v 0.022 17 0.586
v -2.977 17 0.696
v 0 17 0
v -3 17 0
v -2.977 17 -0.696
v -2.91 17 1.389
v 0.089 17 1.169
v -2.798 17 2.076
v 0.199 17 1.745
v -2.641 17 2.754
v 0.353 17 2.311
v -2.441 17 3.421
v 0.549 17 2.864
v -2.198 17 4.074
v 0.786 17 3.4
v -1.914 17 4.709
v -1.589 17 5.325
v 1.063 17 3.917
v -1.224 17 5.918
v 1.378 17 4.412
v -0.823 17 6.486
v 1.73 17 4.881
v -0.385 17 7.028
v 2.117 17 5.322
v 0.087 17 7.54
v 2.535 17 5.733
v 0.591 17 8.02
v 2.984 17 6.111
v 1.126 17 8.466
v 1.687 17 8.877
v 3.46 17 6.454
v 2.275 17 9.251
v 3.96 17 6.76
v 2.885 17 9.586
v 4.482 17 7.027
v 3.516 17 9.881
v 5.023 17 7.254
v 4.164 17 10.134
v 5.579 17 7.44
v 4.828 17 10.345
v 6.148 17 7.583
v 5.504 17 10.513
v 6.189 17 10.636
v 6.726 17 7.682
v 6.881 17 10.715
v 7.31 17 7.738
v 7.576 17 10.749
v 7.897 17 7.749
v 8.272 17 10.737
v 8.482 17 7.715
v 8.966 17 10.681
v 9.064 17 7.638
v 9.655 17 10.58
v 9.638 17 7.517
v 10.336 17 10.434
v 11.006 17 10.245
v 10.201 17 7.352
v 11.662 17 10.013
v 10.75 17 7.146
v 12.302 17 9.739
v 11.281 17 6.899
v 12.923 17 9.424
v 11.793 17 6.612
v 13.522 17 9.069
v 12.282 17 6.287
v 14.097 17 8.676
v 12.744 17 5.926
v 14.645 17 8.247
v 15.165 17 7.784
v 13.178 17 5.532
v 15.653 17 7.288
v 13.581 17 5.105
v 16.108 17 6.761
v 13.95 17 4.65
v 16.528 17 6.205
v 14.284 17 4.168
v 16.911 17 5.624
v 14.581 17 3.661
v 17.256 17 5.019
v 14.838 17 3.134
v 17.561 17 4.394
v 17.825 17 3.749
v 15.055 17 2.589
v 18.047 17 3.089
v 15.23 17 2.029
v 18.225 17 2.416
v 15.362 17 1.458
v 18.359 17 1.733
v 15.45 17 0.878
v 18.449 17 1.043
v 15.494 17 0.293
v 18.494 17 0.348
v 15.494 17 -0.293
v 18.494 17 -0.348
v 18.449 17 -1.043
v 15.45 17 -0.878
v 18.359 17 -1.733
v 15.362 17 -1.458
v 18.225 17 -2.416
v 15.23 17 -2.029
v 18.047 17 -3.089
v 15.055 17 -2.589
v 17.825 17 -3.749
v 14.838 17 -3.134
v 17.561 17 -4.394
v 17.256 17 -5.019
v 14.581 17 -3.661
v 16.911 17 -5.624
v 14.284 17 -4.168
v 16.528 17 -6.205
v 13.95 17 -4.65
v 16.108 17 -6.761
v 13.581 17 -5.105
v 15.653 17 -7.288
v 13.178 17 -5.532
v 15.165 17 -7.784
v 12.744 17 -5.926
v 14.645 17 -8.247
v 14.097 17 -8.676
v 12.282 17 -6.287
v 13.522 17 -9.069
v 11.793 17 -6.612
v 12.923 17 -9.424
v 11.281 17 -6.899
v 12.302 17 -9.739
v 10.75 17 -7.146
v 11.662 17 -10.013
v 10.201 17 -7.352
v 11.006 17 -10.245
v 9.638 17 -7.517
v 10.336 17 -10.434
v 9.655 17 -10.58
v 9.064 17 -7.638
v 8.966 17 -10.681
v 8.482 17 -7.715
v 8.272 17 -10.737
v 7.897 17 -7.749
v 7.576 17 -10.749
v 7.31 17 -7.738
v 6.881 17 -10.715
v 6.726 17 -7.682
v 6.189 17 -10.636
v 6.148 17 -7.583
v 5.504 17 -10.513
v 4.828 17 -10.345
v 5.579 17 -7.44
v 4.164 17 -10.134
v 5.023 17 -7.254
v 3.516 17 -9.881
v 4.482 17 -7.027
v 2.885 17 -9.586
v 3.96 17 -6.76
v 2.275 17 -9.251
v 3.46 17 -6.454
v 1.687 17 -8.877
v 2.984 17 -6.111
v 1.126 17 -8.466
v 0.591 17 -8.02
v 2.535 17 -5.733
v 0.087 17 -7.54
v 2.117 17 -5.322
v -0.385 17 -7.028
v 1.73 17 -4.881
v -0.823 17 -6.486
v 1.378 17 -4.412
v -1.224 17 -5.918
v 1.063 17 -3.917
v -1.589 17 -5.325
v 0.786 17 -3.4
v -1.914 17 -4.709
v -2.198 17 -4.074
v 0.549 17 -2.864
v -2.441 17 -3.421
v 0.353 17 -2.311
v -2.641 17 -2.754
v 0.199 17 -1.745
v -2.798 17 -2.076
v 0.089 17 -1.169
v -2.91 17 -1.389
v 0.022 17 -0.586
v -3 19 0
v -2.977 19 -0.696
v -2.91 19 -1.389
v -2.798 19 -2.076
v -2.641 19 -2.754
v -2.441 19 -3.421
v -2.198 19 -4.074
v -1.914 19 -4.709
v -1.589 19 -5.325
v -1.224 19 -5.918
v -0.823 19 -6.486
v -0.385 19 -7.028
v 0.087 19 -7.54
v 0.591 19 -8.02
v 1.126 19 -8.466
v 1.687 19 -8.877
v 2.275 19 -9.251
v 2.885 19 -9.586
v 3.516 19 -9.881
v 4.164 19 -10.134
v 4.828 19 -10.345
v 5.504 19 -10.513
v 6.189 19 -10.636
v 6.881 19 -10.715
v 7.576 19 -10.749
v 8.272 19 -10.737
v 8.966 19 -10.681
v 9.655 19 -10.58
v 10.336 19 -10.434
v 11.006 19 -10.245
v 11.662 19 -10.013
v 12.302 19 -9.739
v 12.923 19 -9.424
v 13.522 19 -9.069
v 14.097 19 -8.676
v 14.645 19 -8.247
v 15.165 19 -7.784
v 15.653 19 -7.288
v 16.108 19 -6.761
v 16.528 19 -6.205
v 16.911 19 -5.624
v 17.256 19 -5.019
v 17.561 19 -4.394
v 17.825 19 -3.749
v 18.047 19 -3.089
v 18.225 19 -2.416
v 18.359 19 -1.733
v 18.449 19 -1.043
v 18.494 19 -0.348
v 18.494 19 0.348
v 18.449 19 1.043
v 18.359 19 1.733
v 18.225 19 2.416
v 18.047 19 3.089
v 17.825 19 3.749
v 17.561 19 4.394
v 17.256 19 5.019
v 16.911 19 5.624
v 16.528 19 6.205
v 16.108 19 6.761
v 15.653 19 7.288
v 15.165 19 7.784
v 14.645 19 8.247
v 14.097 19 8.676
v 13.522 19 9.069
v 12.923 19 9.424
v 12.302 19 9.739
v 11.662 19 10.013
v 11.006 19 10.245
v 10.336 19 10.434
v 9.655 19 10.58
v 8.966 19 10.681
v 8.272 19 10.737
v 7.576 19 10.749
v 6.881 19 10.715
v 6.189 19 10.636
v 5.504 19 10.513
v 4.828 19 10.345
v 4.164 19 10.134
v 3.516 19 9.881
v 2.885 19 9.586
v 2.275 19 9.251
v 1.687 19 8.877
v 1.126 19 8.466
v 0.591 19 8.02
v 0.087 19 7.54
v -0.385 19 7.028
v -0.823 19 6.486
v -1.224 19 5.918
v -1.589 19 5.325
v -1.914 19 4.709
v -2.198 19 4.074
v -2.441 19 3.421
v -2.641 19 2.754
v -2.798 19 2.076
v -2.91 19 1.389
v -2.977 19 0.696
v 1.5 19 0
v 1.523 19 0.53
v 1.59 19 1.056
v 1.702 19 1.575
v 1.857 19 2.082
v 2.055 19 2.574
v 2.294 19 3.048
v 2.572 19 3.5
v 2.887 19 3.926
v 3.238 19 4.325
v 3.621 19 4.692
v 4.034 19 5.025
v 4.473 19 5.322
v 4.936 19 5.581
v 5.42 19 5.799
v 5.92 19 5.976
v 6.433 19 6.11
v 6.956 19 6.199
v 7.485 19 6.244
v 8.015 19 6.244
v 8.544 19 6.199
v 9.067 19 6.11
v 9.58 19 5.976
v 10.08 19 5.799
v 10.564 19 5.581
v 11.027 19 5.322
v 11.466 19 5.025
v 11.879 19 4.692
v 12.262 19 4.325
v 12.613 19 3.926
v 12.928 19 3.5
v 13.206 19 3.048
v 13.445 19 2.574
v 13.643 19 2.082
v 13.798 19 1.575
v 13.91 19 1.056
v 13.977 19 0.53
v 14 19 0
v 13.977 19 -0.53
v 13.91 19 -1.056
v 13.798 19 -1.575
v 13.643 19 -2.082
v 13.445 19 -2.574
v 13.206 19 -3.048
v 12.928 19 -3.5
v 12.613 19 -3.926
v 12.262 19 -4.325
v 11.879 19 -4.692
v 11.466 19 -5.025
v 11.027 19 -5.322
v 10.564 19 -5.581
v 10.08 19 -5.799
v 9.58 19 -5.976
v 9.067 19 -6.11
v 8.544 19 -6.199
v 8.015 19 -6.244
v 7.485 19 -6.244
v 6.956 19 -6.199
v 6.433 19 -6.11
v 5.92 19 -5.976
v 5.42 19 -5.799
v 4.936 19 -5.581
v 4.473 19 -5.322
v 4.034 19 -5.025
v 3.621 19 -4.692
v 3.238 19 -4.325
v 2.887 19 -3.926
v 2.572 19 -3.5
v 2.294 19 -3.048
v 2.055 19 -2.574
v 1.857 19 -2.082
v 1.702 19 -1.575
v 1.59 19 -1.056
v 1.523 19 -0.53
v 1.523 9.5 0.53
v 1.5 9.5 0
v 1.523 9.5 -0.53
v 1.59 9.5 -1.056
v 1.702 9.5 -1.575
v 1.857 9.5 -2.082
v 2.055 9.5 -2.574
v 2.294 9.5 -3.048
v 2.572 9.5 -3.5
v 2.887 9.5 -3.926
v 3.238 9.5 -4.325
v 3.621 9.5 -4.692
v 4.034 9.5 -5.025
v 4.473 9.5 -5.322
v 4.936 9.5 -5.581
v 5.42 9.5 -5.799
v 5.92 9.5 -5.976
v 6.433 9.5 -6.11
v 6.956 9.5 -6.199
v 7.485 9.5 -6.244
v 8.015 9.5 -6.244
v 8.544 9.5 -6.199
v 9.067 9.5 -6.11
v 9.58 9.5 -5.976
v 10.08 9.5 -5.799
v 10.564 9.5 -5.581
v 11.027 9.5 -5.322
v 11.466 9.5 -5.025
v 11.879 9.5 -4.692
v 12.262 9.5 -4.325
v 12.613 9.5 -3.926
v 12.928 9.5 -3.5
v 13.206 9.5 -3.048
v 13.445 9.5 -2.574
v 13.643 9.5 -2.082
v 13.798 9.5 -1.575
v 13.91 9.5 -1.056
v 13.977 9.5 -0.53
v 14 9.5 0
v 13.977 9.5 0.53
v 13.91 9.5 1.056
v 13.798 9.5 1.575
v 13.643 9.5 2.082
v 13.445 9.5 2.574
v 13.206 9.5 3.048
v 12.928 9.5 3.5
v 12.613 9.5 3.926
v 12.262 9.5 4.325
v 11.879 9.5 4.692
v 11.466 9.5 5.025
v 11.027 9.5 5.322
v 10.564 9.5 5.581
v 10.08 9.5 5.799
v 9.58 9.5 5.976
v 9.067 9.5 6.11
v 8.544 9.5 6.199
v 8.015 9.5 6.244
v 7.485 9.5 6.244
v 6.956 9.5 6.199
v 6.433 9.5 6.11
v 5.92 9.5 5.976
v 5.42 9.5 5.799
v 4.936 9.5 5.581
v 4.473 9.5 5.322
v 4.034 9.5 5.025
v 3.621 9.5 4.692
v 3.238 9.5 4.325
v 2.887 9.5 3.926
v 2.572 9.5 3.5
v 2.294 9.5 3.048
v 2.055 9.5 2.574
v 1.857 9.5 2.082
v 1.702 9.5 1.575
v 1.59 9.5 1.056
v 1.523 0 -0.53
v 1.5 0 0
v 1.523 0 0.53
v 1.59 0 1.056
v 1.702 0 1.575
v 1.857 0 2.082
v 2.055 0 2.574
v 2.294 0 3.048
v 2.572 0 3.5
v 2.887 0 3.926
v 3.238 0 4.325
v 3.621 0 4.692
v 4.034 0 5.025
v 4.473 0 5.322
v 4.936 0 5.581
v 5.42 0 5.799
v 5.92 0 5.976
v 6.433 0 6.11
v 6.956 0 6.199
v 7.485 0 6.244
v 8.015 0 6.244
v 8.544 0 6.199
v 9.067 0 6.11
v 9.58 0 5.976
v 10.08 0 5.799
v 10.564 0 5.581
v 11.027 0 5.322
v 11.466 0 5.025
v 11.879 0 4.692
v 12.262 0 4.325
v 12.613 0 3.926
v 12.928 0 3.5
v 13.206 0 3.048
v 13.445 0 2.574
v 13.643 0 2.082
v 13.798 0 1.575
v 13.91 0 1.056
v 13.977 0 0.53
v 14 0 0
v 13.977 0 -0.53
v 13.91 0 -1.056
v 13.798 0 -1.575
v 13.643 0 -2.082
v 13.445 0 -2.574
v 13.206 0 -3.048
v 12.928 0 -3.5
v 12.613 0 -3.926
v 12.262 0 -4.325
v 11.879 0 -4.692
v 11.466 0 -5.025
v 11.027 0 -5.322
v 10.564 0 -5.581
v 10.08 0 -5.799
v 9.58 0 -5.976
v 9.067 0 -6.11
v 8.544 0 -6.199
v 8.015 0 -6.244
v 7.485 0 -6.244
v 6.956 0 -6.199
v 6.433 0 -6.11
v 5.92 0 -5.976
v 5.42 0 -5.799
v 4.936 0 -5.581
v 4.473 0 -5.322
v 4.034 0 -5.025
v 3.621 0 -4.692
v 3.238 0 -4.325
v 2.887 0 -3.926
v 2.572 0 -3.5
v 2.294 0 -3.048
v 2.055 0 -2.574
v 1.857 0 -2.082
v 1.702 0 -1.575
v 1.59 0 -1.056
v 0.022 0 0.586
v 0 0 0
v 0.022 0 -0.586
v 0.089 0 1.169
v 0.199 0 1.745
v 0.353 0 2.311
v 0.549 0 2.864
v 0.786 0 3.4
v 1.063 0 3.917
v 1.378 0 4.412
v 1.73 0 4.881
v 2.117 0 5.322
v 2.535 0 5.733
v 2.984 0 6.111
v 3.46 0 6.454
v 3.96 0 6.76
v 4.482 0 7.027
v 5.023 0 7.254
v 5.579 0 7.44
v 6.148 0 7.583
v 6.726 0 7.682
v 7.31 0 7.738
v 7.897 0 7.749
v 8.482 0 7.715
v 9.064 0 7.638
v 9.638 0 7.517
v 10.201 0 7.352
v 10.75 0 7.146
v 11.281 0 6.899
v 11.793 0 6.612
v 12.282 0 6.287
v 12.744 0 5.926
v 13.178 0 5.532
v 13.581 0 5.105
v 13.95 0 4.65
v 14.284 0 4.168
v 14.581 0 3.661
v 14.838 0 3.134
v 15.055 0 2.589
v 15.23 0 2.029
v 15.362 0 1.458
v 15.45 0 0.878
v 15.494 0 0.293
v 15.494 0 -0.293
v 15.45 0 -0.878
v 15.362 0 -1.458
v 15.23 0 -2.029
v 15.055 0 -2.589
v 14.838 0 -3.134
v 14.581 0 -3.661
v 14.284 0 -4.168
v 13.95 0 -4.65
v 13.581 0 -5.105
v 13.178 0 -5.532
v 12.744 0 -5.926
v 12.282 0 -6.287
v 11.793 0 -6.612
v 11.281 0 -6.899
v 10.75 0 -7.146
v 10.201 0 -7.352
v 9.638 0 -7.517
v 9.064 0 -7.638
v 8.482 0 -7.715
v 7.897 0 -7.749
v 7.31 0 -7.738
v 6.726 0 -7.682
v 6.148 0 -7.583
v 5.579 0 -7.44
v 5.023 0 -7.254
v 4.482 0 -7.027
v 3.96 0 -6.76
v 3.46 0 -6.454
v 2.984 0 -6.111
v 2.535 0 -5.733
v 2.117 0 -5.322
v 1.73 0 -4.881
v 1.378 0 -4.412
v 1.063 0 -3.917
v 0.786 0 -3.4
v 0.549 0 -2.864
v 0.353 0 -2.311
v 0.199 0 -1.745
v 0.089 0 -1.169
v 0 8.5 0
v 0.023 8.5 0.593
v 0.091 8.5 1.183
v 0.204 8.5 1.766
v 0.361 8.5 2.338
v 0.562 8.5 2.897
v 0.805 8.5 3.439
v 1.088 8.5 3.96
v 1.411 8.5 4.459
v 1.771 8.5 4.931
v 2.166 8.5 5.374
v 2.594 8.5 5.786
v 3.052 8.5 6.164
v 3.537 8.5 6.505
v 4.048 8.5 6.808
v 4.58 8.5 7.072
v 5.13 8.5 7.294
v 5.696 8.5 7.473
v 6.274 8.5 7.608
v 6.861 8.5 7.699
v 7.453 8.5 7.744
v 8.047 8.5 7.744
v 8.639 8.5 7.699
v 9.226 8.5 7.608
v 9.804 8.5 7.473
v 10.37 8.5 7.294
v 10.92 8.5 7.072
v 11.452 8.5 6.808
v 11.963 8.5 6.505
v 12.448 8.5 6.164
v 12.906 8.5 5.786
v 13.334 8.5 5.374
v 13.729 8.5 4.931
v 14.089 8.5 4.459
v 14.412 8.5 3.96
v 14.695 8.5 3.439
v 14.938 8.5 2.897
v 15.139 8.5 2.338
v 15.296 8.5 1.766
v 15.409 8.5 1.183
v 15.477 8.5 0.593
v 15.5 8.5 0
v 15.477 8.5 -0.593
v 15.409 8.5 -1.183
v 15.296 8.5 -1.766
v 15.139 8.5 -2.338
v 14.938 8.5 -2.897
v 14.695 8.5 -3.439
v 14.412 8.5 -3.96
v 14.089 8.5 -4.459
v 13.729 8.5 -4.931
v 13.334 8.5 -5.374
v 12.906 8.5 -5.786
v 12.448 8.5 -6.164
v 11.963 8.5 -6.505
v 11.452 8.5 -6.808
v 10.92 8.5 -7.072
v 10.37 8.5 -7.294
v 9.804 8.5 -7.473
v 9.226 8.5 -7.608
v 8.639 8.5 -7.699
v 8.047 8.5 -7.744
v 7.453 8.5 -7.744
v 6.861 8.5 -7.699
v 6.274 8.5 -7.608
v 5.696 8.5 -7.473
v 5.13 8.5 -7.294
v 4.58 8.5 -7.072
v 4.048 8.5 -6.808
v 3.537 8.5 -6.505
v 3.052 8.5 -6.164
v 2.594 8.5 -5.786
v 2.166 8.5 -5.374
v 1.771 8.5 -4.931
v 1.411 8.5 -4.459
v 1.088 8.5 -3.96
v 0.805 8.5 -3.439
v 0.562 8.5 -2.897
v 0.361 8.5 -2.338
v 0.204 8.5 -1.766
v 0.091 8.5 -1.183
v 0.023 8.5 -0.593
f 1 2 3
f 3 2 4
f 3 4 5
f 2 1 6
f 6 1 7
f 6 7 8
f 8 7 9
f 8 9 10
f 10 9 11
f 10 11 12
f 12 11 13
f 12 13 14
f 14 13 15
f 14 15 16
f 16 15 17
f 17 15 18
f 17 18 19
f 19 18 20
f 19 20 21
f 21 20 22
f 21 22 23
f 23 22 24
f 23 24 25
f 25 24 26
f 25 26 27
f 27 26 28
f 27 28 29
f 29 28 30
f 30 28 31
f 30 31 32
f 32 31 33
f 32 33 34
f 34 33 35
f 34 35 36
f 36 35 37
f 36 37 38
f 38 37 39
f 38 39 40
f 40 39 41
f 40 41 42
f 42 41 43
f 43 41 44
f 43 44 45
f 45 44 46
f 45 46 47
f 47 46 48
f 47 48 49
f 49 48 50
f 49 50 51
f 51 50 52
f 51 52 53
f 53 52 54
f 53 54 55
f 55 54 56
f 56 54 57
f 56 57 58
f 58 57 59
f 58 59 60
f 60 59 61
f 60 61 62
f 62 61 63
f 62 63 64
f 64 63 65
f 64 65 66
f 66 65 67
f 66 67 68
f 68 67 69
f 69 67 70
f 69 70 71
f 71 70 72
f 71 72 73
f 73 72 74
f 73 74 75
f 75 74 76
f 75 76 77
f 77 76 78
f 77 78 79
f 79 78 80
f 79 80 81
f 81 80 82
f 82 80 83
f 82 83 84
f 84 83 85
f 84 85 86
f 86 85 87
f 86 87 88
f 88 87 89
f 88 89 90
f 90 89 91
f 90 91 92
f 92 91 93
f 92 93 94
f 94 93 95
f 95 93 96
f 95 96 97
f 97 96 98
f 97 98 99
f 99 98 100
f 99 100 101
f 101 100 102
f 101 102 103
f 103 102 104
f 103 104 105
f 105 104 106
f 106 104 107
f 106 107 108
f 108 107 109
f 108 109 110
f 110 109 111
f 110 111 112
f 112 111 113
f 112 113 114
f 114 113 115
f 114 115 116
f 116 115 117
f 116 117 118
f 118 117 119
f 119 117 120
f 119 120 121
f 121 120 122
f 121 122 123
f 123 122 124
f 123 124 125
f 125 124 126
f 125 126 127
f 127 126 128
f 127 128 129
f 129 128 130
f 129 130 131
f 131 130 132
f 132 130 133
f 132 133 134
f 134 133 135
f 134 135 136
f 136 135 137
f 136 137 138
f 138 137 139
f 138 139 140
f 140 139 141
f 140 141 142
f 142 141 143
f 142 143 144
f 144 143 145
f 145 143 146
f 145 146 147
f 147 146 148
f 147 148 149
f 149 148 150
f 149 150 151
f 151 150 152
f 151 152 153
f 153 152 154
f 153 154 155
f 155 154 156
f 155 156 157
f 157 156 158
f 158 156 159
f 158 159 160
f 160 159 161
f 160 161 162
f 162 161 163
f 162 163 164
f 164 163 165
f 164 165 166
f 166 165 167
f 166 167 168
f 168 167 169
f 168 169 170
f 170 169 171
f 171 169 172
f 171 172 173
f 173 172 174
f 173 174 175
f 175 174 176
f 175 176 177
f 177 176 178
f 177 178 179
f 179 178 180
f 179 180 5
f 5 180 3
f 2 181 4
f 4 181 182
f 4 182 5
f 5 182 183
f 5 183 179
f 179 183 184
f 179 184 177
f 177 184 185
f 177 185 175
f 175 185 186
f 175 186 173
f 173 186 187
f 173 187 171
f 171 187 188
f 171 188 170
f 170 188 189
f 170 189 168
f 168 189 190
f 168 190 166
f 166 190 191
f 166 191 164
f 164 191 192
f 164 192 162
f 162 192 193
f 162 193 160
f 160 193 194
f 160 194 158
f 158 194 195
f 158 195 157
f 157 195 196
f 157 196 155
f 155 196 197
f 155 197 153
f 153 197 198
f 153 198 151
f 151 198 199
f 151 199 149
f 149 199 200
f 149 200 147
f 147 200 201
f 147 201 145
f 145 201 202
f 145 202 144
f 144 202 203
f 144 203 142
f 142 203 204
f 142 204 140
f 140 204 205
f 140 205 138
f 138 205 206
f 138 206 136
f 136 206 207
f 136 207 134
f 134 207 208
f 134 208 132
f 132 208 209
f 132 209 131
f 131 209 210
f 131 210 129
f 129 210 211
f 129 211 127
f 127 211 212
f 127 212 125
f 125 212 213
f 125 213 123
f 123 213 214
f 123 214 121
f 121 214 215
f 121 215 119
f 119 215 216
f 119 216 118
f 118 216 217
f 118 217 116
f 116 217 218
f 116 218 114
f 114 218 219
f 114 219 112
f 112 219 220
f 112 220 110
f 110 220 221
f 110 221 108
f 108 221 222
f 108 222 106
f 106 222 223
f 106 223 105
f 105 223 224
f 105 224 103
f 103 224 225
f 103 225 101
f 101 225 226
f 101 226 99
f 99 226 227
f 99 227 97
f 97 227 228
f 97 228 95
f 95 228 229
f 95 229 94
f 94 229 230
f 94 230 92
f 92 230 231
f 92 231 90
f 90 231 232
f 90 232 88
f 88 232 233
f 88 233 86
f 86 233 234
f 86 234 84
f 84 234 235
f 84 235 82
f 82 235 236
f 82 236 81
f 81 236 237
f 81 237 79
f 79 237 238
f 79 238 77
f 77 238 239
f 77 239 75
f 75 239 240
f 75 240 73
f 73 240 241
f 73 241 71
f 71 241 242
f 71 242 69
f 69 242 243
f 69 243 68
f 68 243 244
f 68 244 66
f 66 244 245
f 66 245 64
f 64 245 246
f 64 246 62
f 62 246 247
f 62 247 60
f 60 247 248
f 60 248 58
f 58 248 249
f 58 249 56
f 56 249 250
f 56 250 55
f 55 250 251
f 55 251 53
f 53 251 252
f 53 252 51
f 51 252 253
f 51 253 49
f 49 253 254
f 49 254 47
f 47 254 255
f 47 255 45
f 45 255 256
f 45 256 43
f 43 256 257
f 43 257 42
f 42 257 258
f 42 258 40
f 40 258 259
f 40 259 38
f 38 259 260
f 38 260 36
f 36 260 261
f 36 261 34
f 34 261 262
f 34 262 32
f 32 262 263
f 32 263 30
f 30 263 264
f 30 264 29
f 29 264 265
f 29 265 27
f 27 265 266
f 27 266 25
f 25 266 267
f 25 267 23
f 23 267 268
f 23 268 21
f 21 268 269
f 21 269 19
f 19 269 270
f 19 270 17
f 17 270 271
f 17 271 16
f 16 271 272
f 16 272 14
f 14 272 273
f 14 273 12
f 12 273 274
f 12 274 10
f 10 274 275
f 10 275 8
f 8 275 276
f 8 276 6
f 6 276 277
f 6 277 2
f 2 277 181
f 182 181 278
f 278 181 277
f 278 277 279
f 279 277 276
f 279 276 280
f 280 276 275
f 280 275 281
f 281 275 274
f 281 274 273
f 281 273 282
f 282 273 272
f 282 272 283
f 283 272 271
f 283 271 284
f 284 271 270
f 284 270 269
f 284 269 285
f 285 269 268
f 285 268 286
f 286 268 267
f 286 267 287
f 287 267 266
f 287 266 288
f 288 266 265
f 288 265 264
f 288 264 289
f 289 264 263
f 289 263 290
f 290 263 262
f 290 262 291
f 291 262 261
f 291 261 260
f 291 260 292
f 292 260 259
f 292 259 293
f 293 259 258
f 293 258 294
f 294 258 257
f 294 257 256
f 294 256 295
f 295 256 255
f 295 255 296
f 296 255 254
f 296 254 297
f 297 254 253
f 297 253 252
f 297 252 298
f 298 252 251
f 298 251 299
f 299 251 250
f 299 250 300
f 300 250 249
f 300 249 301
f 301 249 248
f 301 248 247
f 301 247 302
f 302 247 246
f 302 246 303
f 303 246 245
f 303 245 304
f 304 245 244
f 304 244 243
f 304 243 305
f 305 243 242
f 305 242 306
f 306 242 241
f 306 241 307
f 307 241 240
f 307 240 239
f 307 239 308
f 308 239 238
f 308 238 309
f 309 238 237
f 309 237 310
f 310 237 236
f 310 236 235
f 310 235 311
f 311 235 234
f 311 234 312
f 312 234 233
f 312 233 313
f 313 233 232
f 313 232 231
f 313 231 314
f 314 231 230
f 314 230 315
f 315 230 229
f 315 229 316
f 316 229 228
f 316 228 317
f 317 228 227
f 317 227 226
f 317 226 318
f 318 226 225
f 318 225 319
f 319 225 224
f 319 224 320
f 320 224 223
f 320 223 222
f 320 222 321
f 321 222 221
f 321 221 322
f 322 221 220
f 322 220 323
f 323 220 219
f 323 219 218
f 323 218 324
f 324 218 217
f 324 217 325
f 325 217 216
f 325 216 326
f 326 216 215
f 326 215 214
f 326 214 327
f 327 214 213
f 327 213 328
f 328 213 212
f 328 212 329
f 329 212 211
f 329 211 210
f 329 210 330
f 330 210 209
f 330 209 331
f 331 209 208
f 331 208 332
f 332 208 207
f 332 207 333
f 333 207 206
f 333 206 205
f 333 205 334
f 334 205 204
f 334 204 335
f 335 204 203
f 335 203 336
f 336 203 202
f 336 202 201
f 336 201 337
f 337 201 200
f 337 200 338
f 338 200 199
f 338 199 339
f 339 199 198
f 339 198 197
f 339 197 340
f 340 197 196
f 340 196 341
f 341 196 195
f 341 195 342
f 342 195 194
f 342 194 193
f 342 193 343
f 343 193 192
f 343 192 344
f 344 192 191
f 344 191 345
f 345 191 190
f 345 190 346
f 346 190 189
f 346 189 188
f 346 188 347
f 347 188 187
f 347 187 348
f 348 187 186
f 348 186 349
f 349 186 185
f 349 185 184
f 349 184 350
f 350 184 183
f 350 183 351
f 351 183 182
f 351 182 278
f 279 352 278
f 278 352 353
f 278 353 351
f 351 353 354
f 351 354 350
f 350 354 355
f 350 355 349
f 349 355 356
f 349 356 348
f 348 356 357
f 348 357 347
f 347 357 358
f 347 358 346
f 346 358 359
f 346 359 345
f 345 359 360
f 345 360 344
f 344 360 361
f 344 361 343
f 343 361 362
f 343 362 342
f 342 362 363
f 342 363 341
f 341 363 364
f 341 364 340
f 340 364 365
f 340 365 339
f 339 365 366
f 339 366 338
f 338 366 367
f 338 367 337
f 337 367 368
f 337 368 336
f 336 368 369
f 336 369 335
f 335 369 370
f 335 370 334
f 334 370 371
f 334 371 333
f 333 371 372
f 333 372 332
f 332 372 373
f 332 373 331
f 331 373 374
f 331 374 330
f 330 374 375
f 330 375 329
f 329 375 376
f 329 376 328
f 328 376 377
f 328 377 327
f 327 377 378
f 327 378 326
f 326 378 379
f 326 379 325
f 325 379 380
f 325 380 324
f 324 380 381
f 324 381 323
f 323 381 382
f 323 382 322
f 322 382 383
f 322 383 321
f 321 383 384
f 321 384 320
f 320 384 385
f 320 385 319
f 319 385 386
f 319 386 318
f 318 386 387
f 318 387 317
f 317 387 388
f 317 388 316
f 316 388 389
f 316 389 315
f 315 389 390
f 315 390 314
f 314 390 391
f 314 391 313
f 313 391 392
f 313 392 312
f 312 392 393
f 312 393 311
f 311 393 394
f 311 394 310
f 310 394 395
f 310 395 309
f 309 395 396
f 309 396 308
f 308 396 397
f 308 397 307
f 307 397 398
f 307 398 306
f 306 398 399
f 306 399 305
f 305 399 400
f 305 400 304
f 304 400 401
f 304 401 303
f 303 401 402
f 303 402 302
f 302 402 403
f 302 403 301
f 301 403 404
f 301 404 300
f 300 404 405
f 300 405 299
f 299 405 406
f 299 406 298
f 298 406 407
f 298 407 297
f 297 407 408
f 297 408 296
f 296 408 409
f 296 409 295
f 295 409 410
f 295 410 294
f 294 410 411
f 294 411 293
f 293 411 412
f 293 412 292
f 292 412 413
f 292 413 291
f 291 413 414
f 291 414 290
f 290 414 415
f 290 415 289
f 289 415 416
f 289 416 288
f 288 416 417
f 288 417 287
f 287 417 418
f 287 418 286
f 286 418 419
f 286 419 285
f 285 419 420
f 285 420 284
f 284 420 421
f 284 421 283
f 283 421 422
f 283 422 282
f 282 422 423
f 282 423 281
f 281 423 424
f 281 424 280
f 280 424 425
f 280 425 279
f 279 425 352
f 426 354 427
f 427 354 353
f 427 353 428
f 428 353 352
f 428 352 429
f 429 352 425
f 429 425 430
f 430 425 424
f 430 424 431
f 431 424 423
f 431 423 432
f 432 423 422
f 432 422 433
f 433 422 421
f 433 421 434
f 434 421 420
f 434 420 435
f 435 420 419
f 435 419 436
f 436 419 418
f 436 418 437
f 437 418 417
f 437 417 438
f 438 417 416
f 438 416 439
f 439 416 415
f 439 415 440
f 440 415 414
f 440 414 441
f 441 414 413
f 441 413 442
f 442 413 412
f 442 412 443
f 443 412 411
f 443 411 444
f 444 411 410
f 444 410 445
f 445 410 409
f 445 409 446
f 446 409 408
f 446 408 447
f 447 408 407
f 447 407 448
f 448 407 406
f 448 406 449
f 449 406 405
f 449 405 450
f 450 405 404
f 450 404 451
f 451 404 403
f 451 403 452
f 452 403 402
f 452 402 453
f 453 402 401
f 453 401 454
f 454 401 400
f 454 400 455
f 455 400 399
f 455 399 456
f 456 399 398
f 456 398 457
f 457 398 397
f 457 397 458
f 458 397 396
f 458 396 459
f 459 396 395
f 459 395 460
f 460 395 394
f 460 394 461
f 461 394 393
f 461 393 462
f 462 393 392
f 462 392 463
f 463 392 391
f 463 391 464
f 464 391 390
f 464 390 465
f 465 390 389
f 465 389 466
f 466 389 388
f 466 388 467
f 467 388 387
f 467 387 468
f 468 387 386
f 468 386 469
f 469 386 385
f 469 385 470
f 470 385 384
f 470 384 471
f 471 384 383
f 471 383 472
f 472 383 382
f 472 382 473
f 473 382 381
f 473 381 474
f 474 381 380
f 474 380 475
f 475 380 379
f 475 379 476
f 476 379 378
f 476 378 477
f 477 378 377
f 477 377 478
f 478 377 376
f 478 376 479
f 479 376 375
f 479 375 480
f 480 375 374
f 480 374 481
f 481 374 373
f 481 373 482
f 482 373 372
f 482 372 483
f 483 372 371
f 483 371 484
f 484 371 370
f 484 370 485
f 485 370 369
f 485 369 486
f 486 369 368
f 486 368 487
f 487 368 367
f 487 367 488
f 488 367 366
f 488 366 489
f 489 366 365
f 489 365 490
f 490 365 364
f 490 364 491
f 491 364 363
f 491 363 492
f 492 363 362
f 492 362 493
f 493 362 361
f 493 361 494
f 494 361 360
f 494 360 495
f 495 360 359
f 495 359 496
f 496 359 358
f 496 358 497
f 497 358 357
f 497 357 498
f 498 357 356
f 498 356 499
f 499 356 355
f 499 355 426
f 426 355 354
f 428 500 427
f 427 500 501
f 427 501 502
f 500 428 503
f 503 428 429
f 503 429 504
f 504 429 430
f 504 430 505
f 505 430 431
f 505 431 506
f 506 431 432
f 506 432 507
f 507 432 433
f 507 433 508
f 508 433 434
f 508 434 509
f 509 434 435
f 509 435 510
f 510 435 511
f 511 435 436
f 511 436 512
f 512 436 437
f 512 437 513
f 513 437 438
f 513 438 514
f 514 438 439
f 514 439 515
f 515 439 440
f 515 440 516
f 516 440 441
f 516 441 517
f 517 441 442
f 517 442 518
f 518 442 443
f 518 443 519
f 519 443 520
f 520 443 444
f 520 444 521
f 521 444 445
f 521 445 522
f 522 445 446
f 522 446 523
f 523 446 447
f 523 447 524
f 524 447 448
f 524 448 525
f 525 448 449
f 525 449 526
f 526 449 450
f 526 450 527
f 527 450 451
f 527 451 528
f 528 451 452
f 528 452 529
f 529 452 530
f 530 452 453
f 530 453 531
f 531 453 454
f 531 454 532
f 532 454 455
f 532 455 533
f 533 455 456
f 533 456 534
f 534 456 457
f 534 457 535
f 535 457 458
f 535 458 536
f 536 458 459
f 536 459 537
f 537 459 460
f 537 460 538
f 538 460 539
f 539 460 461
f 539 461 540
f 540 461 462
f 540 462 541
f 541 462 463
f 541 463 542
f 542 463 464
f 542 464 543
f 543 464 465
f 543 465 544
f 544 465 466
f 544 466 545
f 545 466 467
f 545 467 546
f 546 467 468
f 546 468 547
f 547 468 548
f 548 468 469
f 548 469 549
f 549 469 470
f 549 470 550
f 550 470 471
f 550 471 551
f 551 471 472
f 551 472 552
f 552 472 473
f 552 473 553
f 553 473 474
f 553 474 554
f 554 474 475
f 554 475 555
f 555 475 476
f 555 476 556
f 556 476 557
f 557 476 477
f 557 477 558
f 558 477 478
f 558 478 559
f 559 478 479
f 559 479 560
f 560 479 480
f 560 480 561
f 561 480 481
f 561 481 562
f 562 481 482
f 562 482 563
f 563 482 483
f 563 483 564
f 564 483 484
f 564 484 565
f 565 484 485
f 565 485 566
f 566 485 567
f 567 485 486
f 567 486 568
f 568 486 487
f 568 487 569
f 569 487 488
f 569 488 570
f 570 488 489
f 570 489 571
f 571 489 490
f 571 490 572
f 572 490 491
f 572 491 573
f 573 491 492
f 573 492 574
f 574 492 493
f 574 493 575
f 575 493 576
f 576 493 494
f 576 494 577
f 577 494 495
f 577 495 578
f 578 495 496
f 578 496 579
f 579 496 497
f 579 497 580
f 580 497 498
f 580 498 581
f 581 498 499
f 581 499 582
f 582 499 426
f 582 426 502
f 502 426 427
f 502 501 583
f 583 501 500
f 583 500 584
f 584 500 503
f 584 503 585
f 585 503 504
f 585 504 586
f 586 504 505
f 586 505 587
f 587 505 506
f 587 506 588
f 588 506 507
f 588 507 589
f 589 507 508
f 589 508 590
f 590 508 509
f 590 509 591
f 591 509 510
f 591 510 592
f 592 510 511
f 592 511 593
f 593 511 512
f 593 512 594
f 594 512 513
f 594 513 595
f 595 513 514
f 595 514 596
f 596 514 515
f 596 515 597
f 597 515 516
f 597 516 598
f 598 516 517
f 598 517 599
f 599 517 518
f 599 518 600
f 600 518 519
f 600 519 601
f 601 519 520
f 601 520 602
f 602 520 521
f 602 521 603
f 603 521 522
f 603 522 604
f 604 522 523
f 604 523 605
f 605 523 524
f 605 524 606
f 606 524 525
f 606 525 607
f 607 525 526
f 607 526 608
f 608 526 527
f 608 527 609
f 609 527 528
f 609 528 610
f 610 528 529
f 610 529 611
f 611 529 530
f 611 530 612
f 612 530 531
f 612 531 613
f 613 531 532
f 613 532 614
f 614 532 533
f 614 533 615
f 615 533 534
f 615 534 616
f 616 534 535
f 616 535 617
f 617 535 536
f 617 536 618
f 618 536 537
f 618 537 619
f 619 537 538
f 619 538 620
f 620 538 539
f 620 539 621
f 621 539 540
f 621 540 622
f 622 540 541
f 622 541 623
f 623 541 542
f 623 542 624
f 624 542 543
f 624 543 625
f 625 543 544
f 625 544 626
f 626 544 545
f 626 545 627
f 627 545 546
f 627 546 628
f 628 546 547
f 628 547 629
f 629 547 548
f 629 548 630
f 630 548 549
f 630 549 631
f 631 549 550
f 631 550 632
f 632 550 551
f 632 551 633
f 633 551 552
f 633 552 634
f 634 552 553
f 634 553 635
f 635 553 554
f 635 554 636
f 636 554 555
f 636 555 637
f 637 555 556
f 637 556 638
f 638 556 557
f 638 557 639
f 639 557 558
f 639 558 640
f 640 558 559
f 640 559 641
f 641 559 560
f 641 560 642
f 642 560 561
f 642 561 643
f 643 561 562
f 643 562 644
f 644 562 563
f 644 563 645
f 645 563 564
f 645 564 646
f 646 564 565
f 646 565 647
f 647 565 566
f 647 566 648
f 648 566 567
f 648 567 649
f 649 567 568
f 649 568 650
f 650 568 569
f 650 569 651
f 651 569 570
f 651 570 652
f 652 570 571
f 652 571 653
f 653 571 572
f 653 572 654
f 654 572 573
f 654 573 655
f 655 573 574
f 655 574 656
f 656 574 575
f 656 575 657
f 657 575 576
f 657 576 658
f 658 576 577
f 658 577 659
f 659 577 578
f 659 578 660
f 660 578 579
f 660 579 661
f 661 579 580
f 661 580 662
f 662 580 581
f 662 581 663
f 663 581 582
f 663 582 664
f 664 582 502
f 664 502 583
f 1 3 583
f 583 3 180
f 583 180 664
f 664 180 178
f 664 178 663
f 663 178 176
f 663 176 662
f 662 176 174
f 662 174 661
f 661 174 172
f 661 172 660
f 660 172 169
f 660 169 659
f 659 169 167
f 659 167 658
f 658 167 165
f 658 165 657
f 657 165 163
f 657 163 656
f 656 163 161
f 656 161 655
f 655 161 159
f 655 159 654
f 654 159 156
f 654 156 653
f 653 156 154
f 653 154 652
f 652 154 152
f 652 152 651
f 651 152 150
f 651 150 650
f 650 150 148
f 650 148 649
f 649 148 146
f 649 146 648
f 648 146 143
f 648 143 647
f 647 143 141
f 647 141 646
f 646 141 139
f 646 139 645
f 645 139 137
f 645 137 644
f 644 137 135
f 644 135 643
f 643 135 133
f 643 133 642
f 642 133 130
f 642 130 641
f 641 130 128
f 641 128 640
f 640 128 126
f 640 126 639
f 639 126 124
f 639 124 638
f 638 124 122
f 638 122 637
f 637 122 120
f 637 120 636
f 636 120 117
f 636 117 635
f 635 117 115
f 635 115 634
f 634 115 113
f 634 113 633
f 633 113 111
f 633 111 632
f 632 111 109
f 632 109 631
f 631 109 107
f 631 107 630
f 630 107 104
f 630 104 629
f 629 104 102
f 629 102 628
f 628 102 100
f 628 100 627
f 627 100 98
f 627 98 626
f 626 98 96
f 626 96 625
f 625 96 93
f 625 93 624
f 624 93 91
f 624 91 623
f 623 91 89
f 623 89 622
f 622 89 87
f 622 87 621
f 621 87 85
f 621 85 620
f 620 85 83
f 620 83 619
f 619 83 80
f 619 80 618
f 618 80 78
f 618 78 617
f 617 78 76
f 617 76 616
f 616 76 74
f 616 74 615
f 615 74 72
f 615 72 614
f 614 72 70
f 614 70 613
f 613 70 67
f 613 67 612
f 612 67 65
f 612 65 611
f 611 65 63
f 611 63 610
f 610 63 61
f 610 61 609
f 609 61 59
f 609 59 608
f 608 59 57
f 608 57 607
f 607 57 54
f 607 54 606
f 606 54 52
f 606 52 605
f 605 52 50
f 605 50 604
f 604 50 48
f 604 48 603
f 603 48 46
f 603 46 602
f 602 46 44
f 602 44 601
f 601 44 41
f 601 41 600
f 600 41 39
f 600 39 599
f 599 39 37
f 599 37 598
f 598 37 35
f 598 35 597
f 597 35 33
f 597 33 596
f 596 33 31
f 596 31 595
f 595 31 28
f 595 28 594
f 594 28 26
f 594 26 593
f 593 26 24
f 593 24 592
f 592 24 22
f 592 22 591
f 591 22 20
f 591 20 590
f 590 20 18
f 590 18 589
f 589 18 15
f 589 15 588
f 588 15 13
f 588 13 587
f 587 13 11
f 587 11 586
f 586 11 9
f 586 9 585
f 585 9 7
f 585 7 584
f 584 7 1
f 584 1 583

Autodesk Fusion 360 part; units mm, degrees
sketch "Sketch tranche" plane through (0, 0, 0) normal (0, 0, 1) x (1, 0, 0)
  line L0 (0, 0) -> (1.5, 0)
  line L1 (1.5, 0) -> (1.5, 17)
  line L2 (1.5, 17) -> (0, 17)
  line L3 (0, 17) -> (0, 0)
  line L4 (7.75, 0) -> (7.75, 16)
  line L5 (1.5, 17) -> (-3, 17)
  line L6 (-3, 17) -> (-3, 19)
  line L7 (-3, 19) -> (1.5, 19)
  line L8 (1.5, 19) -> (1.5, 17)
  dimension "d1" = 1.5
  dimension "d2" = 17
  dimension "d3" = 7.75
  dimension "d4" = 3
  dimension "d5" = 2
revolve "Revolve1" add sketch "Sketch tranche" angle 360 about axis through (7.75, 0, 0) along (0, 1, 0)
